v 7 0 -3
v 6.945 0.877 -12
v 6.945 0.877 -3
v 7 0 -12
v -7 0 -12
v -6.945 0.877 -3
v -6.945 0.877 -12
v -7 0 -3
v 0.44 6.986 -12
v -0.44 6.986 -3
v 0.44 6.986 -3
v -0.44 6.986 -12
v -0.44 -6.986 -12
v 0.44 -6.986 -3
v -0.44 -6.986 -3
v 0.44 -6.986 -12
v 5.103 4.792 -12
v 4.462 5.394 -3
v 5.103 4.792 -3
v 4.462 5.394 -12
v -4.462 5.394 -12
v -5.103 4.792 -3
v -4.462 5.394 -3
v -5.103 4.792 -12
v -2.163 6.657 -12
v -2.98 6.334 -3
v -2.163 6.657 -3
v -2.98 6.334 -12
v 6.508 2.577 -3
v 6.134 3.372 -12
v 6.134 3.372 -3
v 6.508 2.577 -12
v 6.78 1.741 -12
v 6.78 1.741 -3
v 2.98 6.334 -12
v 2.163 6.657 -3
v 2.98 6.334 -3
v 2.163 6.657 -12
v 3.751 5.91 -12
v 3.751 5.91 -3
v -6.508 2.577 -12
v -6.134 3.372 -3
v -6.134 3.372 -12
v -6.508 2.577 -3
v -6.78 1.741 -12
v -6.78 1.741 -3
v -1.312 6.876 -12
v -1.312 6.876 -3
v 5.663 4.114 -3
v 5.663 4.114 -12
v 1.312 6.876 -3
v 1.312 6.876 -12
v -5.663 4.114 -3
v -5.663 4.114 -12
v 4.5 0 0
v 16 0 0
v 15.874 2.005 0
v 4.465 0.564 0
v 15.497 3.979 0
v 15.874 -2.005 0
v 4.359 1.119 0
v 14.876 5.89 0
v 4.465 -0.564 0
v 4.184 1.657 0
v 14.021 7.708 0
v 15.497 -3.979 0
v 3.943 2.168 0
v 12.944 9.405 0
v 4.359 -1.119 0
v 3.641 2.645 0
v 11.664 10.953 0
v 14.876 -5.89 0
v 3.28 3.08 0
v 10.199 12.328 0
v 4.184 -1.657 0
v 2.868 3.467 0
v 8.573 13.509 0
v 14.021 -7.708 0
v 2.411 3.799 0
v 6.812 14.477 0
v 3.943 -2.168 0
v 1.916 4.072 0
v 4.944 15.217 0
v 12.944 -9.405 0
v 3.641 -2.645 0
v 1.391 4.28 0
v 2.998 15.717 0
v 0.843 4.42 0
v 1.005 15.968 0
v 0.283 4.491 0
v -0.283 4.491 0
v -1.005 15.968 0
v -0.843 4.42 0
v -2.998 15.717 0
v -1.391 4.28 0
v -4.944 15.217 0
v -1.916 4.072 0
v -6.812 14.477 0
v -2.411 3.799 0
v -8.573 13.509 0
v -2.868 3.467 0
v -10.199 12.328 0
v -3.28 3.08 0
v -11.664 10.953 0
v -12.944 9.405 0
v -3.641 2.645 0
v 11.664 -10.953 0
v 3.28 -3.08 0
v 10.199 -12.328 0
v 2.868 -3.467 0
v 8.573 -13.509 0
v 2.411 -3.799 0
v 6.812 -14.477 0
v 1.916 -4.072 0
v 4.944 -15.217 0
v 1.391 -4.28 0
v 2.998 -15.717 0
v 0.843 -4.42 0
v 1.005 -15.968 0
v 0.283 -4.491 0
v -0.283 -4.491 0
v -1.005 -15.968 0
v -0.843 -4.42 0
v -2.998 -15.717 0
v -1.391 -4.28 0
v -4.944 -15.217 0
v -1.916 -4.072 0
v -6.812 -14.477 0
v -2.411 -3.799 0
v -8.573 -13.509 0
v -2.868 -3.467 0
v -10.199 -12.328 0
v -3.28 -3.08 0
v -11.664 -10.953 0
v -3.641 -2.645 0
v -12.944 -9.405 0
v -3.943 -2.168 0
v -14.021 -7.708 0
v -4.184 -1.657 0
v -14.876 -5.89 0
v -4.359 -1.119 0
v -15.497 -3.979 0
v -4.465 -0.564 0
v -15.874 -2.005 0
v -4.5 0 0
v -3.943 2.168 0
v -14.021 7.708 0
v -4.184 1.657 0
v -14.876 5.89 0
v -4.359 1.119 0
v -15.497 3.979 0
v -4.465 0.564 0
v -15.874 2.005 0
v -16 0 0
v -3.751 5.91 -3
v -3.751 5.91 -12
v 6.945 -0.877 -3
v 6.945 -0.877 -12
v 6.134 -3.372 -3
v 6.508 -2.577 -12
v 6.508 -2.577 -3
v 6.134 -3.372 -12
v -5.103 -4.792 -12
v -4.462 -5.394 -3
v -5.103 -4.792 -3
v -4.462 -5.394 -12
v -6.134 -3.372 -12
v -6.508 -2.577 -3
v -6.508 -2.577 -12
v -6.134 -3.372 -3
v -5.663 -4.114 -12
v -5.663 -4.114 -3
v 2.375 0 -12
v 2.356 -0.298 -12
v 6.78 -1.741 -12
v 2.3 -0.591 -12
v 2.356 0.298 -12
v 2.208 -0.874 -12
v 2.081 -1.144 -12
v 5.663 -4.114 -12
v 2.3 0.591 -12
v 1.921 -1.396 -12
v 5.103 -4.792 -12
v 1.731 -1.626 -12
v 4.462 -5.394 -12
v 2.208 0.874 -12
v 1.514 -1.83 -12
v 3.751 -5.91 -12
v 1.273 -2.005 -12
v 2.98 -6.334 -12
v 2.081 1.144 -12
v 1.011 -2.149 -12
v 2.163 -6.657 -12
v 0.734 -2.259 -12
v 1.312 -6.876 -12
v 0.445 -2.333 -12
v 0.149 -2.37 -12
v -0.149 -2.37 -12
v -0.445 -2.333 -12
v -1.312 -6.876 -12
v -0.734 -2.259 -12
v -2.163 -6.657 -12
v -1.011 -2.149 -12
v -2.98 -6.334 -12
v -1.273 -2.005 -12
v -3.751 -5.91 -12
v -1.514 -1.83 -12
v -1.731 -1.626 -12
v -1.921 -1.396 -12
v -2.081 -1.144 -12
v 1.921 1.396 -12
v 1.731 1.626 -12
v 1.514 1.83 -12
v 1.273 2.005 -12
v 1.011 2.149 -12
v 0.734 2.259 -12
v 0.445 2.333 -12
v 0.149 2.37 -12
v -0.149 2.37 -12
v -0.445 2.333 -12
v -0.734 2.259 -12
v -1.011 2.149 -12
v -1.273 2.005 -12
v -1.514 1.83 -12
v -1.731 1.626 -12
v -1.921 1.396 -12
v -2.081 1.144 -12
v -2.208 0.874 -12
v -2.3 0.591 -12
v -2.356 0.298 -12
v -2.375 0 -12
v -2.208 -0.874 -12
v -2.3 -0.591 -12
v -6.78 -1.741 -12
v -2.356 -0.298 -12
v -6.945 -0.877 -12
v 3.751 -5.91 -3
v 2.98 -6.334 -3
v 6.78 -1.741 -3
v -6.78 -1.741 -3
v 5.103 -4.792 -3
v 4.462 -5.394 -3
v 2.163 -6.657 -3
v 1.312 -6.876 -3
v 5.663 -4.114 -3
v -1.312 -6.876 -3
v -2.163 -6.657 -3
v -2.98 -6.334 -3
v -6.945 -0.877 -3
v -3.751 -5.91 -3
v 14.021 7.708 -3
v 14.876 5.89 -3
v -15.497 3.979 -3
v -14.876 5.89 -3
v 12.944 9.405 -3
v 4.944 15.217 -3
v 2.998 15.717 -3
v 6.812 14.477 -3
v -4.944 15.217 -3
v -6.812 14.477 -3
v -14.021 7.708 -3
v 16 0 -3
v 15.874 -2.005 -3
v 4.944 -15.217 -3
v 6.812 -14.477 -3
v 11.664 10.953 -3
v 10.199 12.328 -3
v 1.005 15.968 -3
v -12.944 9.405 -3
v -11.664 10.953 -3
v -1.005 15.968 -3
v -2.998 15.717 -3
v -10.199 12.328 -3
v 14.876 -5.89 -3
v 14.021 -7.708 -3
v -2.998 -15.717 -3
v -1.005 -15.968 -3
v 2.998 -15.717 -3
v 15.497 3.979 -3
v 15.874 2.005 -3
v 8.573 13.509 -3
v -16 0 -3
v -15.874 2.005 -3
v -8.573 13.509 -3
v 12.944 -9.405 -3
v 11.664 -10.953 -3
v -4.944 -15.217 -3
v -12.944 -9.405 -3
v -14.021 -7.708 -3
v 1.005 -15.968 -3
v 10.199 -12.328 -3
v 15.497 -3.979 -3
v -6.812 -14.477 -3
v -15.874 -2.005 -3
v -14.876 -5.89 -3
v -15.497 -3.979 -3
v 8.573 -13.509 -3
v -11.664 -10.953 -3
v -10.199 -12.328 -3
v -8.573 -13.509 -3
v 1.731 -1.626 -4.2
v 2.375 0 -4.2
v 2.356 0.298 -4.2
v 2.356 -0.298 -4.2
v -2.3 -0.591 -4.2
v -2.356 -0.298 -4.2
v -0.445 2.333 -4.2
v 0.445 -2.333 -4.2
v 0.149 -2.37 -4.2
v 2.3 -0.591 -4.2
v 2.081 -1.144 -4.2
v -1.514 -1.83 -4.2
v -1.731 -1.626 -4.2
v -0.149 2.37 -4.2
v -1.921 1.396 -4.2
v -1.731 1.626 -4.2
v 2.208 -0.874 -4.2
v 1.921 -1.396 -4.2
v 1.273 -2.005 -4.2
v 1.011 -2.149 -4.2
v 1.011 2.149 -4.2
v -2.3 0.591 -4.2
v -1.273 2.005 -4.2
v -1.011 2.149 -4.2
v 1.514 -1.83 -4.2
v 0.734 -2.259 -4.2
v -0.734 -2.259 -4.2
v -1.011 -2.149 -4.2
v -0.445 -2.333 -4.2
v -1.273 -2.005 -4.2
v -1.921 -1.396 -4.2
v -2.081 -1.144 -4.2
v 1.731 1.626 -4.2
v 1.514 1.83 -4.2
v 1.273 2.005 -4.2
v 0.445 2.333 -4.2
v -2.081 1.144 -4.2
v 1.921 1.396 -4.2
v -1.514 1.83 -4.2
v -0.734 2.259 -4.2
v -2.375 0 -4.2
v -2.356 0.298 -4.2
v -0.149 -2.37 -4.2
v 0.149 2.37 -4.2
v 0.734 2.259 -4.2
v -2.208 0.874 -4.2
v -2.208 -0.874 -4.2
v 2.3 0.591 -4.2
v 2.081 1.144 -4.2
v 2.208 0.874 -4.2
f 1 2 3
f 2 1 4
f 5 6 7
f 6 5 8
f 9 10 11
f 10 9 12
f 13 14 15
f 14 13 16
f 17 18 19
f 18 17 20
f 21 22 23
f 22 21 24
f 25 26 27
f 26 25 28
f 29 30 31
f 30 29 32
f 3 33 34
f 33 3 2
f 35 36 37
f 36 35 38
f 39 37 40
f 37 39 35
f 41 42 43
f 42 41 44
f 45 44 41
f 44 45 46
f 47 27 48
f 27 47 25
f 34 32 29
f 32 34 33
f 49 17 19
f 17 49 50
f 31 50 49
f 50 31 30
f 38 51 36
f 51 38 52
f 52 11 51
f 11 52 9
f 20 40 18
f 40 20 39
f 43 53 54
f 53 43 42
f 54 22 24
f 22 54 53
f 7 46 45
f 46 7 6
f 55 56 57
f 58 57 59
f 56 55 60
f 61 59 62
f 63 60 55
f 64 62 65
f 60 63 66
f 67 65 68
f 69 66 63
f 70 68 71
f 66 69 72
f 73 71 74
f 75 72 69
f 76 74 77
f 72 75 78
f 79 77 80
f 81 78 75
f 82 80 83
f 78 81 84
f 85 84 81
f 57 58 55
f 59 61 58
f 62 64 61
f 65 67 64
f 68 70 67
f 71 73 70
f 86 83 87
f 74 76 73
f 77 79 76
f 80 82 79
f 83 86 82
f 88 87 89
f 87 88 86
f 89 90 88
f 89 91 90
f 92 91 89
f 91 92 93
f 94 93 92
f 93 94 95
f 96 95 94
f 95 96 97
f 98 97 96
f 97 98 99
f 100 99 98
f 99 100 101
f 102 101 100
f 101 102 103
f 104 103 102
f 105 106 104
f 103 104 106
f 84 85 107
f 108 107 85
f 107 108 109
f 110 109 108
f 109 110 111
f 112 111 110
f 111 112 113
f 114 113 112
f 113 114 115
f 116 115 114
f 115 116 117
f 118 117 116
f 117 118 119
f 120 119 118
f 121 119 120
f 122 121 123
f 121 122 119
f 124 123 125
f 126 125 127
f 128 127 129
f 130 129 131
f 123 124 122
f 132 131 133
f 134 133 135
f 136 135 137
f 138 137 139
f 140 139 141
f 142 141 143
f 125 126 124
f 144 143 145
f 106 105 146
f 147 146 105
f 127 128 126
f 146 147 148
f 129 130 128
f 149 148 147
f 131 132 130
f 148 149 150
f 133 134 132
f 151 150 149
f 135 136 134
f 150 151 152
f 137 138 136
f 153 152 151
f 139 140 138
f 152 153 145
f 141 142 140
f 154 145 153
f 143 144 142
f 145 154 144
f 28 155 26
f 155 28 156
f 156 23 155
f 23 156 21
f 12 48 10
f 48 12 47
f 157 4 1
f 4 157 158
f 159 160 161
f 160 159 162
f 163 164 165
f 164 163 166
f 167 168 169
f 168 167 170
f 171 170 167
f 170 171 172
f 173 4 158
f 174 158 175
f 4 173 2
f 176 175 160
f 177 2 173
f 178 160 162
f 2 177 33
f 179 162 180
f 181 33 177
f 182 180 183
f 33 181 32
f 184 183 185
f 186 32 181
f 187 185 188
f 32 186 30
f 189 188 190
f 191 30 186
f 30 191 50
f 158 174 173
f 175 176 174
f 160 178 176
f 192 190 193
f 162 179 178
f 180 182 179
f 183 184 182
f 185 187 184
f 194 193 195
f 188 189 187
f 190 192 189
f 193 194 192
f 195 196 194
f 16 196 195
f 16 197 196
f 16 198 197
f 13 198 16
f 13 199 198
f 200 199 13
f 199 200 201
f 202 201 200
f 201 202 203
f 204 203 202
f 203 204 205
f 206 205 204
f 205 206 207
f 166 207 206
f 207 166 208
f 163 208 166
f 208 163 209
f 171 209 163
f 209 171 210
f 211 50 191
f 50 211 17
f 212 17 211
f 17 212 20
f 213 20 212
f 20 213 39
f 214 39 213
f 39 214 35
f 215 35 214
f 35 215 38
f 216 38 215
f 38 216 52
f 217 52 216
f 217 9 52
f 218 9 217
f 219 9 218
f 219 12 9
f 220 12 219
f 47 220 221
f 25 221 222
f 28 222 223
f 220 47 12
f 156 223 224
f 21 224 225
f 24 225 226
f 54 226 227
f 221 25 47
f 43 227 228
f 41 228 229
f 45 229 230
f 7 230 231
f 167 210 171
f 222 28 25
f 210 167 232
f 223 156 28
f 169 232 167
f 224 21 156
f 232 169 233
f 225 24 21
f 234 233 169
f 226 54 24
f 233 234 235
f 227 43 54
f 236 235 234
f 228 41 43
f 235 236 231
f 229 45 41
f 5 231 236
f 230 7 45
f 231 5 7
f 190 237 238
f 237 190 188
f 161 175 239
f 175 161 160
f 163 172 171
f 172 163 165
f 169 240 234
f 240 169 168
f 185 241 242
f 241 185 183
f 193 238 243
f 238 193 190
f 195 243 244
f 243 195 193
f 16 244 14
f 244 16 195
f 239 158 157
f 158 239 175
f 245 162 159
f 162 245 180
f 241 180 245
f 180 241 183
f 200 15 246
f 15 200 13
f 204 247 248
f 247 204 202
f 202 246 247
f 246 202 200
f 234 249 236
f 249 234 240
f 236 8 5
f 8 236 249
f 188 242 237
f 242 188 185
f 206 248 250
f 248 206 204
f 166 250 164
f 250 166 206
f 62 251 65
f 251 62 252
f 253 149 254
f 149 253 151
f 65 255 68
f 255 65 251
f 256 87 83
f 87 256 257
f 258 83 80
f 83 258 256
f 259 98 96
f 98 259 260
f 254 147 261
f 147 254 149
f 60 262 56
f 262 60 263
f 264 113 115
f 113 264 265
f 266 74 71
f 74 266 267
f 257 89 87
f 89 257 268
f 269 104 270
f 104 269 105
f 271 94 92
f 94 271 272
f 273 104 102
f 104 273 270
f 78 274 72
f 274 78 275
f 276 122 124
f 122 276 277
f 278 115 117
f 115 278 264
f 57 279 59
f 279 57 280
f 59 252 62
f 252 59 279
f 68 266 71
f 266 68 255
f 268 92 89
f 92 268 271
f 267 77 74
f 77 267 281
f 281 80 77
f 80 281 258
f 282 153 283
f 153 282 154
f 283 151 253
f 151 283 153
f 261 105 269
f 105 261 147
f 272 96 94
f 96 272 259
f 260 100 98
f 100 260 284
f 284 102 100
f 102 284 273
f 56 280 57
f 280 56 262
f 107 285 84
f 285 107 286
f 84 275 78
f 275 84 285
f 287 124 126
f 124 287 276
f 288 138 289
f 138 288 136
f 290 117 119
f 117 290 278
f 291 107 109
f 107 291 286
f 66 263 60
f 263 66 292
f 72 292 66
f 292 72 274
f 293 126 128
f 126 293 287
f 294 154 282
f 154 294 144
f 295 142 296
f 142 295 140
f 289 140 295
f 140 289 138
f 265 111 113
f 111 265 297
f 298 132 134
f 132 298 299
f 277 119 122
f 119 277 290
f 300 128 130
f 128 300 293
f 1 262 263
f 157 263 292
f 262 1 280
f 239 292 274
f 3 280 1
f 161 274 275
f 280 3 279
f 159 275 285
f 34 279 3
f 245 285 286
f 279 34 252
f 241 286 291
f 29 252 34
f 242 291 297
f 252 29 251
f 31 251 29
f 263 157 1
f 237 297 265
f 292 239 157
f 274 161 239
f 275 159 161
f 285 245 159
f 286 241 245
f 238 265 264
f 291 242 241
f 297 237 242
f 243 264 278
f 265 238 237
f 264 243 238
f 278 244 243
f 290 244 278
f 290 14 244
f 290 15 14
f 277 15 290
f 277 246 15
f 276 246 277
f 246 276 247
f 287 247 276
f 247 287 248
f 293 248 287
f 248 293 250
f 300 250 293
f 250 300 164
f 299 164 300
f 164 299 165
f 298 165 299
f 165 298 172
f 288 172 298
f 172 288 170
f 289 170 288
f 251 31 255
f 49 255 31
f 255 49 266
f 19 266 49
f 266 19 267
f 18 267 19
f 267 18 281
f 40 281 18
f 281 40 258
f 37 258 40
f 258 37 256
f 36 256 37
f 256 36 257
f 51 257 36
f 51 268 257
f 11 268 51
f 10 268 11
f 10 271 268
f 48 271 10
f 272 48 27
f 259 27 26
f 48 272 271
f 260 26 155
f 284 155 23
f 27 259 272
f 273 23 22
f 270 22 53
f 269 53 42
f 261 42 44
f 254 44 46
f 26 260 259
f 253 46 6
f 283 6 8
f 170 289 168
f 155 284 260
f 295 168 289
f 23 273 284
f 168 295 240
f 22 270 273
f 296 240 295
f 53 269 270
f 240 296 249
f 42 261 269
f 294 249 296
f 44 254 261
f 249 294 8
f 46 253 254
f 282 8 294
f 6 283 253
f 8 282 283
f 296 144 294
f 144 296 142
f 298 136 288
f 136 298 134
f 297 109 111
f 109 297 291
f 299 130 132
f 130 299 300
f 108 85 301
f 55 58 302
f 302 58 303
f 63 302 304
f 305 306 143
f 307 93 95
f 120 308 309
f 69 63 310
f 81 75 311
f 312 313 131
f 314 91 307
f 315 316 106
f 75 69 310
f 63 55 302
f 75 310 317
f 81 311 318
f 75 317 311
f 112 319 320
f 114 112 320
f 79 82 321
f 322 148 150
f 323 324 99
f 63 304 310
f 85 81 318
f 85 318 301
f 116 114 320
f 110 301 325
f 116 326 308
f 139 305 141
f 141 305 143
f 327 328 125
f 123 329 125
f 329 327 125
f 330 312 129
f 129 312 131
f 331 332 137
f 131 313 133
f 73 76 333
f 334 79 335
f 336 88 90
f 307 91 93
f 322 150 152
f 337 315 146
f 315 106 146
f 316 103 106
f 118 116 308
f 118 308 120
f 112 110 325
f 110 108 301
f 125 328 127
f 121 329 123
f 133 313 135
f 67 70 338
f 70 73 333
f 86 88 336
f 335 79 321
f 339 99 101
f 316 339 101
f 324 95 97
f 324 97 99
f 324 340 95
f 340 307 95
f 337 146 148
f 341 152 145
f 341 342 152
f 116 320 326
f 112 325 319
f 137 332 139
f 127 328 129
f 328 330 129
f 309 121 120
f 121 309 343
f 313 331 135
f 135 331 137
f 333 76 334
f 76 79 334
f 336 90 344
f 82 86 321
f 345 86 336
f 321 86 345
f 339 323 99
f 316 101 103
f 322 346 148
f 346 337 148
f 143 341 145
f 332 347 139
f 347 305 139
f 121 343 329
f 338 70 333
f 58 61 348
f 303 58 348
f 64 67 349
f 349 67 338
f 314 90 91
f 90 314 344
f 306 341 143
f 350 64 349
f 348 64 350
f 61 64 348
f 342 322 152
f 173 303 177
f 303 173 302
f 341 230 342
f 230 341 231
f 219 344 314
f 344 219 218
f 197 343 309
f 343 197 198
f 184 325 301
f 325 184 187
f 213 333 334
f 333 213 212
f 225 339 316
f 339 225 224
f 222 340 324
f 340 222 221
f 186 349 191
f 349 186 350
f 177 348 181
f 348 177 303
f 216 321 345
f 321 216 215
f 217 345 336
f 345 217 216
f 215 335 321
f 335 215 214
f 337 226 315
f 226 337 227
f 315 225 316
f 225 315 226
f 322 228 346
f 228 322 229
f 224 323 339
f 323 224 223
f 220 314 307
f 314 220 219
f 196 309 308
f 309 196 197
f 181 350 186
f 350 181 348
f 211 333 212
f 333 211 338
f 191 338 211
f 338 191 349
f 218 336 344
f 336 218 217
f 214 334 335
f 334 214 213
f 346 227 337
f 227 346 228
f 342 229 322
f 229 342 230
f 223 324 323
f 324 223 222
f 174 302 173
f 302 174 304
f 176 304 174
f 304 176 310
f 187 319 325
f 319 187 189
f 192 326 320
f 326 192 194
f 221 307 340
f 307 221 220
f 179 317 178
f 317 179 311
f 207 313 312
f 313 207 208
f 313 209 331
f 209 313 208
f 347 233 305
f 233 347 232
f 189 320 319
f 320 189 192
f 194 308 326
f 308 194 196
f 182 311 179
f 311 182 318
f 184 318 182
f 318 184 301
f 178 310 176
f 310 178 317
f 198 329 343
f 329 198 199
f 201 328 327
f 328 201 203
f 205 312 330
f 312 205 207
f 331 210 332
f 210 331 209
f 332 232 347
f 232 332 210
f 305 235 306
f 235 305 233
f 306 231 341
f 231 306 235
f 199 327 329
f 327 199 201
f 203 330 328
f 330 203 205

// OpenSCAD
$fn = 50;


difference() {
	union() {
		translate(v = [0, 0, -12.0000000000]) {
			cylinder(h = 12, r = 7.0000000000);
		}
		translate(v = [0, 0, -3.0000000000]) {
			cylinder(h = 3, r = 16.0000000000);
		}
	}
	union() {
		translate(v = [0, 0, 0]) {
			rotate(a = [0, 0, 0]) {
				difference() {
					union() {
						#translate(v = [0, 0, -12.0000000000]) {
							cylinder(h = 12, r = 2.2500000000);
						}
						#translate(v = [0, 0, -4.2000000000]) {
							cylinder(h = 4.2000000000, r = 7.0000000000, r1 = 2.3750000000, r2 = 4.5000000000);
						}
						#translate(v = [0, 0, -12.0000000000]) {
							cylinder(h = 12, r = 2.3750000000);
						}
						#translate(v = [0, 0, -12.0000000000]) {
							cylinder(h = 12, r = 2.2500000000);
						}
					}
					union();
				}
			}
		}
	}
}
